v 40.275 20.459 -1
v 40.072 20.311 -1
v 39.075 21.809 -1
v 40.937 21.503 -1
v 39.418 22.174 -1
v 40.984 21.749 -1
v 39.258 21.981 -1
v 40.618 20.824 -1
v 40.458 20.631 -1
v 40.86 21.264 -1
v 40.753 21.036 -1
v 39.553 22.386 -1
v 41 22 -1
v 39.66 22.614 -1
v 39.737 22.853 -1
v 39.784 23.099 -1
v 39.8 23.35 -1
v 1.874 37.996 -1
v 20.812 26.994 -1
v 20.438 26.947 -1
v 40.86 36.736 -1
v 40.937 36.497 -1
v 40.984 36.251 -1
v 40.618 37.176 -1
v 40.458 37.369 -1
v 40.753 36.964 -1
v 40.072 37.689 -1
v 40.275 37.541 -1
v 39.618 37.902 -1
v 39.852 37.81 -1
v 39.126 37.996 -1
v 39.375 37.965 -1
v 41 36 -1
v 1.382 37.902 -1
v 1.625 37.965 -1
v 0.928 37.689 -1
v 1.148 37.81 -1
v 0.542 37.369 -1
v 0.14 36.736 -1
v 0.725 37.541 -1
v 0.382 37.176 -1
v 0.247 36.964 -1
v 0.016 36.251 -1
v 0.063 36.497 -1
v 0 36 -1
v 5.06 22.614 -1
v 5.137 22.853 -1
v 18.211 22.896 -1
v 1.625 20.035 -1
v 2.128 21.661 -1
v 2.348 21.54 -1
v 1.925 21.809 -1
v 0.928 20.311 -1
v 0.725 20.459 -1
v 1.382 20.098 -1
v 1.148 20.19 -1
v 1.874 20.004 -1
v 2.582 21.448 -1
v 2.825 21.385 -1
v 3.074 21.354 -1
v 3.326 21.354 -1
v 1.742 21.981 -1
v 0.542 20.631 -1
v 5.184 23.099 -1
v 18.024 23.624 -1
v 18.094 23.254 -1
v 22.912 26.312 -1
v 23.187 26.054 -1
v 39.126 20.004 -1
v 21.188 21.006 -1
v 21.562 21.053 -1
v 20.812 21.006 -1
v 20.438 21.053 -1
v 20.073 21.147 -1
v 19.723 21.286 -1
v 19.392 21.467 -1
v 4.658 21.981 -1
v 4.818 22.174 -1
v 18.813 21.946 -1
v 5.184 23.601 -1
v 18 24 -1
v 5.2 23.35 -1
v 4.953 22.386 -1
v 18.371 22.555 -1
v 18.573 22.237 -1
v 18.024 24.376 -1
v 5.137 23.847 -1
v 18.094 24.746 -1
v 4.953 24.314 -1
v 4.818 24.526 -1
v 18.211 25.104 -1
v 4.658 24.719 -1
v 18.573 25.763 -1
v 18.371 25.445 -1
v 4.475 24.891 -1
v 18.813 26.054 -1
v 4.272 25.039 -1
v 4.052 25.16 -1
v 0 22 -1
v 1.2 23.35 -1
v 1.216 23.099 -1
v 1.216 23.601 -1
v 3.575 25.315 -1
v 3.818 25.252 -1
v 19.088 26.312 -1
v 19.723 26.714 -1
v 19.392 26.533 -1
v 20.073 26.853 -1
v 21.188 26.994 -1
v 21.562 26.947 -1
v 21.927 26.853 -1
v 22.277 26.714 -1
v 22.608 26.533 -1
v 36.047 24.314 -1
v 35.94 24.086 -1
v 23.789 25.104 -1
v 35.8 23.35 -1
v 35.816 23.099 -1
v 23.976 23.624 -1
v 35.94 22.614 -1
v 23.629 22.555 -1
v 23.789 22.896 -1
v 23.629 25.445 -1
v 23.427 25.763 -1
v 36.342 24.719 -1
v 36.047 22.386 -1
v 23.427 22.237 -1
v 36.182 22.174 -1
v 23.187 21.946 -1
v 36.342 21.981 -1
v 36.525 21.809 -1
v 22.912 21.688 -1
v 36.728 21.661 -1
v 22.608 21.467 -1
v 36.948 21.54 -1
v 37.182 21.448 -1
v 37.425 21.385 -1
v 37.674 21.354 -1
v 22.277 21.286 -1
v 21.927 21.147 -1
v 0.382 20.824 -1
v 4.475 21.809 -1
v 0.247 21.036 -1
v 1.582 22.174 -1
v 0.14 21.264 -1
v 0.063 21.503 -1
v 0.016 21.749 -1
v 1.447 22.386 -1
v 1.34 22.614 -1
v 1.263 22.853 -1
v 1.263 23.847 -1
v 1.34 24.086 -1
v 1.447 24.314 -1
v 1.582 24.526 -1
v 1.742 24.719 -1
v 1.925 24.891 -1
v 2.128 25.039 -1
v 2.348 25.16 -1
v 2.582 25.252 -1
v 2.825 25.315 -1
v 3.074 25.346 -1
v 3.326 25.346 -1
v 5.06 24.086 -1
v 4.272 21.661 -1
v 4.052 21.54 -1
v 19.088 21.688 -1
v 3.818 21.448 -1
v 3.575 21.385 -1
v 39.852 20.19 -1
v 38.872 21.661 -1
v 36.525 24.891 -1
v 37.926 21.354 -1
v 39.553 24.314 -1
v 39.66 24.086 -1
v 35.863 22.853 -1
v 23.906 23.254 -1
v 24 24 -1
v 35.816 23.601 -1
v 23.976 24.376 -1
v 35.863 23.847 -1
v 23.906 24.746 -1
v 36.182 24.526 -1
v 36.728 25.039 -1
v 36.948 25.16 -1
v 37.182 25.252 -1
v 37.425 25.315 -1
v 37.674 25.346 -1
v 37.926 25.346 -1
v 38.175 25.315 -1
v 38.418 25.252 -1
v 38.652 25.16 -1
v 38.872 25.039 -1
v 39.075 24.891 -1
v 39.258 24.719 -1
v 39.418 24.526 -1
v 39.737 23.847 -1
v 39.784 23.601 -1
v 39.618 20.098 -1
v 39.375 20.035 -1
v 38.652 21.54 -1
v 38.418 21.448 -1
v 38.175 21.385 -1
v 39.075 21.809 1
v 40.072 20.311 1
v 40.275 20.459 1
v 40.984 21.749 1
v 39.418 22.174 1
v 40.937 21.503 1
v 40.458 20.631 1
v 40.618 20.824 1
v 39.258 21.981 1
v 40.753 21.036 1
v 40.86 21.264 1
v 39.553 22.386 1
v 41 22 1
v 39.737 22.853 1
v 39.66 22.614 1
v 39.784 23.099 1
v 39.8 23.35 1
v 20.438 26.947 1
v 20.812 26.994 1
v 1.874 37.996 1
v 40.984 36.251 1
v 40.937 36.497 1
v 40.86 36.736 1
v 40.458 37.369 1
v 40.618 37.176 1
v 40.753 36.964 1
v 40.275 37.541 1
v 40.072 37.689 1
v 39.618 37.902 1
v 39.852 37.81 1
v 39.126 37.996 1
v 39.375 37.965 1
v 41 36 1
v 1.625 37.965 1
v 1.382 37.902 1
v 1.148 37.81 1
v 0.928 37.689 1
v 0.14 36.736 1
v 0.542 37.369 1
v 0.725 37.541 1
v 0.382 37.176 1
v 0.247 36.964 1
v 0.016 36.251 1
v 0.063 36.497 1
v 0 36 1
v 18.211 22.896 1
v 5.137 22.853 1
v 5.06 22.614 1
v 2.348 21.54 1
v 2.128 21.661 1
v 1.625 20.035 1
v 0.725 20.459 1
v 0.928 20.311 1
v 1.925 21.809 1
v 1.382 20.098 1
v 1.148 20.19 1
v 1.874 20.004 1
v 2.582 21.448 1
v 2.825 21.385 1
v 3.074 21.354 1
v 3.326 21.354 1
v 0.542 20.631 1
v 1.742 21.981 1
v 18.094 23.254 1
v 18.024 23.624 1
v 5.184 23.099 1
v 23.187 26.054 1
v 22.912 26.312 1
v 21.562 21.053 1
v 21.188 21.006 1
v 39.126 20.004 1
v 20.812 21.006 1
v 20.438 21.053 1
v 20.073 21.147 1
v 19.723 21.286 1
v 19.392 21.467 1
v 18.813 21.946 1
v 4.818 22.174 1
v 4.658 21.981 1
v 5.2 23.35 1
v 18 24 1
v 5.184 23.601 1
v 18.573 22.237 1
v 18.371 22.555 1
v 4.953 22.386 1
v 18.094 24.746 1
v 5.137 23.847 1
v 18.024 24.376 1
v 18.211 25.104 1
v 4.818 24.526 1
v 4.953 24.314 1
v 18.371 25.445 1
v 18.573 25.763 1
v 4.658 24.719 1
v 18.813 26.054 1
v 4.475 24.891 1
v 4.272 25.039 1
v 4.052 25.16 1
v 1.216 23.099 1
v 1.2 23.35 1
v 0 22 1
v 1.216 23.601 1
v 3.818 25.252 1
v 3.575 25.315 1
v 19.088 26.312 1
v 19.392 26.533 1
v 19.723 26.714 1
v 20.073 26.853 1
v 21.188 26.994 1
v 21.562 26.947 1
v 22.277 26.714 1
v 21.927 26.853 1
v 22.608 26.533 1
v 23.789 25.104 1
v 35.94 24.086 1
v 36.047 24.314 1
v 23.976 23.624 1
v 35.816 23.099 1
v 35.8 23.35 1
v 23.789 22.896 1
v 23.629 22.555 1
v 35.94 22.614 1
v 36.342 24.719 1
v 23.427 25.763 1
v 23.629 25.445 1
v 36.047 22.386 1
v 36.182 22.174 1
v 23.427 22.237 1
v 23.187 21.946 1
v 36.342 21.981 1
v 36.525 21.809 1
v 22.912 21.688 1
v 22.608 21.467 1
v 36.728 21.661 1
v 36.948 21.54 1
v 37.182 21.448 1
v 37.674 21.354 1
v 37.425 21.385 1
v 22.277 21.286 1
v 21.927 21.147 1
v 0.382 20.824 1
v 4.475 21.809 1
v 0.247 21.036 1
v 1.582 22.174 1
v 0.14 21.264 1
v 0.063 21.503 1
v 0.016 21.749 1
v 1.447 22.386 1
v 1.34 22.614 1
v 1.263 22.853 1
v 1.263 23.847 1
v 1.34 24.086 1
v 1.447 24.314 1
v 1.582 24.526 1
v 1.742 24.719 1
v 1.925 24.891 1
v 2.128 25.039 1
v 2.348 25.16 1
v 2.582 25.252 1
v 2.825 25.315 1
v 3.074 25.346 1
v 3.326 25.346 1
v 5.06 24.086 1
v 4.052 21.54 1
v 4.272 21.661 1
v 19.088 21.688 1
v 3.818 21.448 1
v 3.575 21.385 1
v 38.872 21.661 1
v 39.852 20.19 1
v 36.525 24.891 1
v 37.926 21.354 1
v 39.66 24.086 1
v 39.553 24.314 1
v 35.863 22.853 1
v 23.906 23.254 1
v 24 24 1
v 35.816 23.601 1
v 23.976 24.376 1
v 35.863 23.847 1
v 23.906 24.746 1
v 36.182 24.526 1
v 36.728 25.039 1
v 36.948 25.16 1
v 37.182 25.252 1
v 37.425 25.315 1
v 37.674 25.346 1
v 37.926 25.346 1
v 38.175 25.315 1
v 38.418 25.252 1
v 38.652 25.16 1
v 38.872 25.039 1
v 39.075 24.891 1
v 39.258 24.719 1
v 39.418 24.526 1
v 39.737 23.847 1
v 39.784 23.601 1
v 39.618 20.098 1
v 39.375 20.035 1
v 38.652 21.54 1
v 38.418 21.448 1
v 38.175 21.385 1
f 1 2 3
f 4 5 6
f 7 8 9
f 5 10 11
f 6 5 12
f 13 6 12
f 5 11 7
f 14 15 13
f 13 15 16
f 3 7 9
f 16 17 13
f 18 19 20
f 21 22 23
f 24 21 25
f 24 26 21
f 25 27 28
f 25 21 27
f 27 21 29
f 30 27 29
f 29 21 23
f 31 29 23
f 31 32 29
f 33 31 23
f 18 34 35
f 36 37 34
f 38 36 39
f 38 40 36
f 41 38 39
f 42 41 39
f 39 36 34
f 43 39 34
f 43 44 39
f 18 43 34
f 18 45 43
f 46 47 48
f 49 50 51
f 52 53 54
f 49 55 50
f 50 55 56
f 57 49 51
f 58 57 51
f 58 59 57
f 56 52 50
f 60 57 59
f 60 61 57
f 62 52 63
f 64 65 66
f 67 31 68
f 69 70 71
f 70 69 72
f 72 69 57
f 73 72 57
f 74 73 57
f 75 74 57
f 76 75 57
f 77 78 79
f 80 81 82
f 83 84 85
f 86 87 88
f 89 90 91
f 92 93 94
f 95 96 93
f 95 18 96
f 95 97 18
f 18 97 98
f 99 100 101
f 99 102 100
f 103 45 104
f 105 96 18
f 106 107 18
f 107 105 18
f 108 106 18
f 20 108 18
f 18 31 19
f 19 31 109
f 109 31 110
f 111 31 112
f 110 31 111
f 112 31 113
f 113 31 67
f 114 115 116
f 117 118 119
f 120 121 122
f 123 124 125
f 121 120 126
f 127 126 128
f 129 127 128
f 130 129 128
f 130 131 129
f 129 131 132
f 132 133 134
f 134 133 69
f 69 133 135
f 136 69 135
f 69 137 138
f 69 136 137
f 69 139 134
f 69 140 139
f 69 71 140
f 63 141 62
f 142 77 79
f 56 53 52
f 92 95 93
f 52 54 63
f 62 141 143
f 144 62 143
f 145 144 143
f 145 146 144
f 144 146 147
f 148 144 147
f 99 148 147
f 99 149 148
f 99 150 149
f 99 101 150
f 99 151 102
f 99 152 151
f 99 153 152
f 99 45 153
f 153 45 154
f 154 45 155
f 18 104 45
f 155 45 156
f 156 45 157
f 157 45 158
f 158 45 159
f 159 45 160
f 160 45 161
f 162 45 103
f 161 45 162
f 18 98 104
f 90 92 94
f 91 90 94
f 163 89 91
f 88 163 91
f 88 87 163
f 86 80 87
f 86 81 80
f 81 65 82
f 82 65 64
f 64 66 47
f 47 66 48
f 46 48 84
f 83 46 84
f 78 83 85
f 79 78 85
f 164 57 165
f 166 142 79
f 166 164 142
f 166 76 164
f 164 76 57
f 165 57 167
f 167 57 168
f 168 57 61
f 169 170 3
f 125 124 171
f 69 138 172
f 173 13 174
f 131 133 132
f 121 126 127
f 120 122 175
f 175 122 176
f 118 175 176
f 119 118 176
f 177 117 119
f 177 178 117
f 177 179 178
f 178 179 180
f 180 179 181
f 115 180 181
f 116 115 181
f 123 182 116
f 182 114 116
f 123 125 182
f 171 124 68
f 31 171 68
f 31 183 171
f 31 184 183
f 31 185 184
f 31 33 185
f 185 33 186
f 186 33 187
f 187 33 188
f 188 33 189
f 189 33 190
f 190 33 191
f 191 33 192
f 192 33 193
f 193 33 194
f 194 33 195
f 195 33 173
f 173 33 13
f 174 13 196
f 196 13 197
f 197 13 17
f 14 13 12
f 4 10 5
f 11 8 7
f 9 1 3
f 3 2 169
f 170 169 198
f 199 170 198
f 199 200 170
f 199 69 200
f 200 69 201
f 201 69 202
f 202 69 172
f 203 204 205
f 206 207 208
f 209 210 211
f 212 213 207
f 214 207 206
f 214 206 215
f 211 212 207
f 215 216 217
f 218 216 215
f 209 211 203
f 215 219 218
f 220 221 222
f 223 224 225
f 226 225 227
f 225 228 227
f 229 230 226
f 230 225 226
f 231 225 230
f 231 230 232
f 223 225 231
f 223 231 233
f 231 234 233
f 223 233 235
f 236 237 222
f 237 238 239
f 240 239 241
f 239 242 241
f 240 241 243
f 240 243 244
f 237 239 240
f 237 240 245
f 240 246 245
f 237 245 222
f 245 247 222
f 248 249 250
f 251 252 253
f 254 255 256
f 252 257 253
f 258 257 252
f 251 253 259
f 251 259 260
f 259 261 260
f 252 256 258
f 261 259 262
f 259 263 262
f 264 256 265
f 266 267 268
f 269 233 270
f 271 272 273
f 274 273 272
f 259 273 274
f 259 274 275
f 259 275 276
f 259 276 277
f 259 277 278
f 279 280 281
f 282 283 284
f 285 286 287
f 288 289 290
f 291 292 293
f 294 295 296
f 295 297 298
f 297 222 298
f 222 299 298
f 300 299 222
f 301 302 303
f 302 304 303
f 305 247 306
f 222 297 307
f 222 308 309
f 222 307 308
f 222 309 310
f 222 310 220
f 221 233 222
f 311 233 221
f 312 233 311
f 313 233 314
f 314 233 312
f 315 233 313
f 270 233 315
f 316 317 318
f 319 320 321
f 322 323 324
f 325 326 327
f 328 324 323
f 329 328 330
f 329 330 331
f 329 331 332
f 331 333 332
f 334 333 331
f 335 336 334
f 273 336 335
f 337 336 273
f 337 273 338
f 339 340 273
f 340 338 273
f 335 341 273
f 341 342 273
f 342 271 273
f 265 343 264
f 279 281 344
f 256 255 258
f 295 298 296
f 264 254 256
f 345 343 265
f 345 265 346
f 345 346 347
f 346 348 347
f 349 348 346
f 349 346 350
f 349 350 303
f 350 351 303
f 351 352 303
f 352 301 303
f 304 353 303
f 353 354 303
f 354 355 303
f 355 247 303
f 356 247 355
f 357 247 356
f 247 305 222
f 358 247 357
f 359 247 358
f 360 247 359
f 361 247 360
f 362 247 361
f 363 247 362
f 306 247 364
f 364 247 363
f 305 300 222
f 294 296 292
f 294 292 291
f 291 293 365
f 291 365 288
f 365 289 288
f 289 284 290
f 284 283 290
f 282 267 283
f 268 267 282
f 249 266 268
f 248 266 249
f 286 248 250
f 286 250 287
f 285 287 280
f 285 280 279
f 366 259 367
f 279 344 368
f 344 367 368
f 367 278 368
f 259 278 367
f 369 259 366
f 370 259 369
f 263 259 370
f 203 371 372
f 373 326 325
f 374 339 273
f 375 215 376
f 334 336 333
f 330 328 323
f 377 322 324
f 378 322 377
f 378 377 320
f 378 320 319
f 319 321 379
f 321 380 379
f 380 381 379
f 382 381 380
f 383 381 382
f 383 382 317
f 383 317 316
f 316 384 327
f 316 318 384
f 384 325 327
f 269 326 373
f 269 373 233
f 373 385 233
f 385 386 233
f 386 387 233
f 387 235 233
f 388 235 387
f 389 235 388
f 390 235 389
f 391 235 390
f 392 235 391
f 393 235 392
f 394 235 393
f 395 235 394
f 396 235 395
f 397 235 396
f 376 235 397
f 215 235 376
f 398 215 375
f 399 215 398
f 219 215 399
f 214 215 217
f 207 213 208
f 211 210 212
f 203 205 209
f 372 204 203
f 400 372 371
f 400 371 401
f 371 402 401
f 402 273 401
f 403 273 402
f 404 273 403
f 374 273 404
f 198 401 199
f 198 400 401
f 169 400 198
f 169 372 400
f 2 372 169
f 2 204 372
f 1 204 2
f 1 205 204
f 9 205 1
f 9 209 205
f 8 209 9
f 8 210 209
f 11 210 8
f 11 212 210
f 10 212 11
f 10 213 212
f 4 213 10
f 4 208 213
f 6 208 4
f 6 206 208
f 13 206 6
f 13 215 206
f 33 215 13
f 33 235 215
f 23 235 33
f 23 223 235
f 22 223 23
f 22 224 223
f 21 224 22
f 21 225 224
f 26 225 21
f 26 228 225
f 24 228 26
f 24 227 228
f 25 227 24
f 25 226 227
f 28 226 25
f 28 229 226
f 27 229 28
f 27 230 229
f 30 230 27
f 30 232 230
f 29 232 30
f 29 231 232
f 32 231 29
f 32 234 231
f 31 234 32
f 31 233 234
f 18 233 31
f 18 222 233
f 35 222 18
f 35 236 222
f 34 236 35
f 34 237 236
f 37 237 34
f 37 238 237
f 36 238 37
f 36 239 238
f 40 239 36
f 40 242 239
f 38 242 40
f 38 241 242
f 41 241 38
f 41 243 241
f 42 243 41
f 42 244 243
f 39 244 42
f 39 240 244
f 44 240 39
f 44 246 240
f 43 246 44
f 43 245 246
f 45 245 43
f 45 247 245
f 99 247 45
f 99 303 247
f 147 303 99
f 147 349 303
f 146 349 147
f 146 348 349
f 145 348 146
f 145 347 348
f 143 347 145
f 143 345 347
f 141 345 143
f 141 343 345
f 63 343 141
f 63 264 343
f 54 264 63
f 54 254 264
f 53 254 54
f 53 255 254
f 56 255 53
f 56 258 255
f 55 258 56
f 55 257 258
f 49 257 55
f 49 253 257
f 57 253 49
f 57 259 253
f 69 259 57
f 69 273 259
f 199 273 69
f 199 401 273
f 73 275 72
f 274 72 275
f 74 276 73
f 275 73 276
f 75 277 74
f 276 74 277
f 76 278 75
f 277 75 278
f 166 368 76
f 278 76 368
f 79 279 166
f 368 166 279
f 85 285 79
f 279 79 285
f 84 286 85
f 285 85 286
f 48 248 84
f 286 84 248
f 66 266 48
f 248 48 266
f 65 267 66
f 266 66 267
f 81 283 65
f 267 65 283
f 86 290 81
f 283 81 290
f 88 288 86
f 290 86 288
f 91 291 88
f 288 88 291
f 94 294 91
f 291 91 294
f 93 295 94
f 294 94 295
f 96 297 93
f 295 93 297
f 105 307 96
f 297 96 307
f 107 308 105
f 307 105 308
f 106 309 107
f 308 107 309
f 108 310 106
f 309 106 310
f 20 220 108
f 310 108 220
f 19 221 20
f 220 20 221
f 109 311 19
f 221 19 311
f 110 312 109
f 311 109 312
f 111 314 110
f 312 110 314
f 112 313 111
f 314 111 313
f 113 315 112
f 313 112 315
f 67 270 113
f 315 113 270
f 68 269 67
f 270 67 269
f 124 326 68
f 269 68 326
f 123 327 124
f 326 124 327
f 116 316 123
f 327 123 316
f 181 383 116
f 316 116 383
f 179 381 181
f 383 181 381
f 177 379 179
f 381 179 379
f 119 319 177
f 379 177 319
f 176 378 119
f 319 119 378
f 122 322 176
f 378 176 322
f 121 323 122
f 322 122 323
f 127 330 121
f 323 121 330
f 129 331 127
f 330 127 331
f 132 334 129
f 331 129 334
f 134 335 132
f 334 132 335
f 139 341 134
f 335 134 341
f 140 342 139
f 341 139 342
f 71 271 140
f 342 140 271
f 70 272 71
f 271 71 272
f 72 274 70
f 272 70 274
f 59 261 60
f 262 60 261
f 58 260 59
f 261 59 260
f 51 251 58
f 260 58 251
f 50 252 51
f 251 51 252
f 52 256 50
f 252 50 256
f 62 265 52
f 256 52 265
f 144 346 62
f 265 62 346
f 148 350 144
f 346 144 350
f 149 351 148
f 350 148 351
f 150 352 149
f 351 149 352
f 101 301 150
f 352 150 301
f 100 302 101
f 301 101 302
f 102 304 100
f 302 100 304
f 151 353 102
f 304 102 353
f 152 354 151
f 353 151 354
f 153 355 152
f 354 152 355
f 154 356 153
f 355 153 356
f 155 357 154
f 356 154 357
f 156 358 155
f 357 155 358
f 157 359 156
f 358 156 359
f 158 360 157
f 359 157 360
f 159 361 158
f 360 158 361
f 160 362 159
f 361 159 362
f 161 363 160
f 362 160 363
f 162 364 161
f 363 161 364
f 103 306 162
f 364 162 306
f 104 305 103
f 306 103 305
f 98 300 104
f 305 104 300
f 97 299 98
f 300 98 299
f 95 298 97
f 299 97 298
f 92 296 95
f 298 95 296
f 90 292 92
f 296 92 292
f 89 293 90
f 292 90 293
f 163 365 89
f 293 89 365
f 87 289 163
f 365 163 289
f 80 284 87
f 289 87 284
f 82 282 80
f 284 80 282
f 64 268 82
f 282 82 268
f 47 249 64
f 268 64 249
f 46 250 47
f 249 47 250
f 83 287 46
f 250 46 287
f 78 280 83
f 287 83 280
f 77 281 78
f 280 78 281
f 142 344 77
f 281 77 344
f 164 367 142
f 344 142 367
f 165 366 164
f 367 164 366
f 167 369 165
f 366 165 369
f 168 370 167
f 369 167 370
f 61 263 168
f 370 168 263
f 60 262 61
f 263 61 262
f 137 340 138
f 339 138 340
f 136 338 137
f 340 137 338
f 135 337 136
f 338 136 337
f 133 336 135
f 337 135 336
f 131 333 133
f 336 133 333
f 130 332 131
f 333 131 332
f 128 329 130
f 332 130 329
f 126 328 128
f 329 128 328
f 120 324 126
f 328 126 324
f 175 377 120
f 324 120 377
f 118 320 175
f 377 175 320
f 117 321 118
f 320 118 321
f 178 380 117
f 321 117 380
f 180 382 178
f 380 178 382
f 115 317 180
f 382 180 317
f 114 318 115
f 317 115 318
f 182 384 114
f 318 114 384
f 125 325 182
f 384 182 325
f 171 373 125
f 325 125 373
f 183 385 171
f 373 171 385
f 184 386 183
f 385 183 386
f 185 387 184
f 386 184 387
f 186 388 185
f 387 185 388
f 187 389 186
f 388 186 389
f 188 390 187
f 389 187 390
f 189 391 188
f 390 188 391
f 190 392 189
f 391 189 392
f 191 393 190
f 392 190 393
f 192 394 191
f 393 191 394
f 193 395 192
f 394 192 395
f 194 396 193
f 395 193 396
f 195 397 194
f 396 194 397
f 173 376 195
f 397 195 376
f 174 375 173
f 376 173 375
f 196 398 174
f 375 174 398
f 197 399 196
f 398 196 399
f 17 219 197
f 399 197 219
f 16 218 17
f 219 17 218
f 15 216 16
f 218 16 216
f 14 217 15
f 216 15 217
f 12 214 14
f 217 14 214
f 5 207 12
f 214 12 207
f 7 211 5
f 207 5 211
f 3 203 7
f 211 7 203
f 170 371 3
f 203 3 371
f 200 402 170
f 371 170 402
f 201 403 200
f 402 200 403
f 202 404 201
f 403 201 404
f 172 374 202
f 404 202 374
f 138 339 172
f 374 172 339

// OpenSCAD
module roundedSquare( width, length, radiusCorner ) {
	translate( [ radiusCorner, radiusCorner, 0 ] )
		minkowski() {
			square( [width - 2 * radiusCorner, length - 2 * radiusCorner], false);
			circle(radiusCorner, $fn=50);
		}
}

//Make it 3D
linear_extrude(height = 2, center = true, convexity = 10, twist = 0)

difference()
{
	translate([0,20])
		roundedSquare(41, 18, 2);
    
    // Mounting holes
    translate([3.2,23.35])
        circle(2, true, $fn=50);
    translate([37.8,23.35])
        circle(2, true, $fn=50);
	
	// Capacitor
	translate([21,24])
        circle(3, true, $fn=50);
}
